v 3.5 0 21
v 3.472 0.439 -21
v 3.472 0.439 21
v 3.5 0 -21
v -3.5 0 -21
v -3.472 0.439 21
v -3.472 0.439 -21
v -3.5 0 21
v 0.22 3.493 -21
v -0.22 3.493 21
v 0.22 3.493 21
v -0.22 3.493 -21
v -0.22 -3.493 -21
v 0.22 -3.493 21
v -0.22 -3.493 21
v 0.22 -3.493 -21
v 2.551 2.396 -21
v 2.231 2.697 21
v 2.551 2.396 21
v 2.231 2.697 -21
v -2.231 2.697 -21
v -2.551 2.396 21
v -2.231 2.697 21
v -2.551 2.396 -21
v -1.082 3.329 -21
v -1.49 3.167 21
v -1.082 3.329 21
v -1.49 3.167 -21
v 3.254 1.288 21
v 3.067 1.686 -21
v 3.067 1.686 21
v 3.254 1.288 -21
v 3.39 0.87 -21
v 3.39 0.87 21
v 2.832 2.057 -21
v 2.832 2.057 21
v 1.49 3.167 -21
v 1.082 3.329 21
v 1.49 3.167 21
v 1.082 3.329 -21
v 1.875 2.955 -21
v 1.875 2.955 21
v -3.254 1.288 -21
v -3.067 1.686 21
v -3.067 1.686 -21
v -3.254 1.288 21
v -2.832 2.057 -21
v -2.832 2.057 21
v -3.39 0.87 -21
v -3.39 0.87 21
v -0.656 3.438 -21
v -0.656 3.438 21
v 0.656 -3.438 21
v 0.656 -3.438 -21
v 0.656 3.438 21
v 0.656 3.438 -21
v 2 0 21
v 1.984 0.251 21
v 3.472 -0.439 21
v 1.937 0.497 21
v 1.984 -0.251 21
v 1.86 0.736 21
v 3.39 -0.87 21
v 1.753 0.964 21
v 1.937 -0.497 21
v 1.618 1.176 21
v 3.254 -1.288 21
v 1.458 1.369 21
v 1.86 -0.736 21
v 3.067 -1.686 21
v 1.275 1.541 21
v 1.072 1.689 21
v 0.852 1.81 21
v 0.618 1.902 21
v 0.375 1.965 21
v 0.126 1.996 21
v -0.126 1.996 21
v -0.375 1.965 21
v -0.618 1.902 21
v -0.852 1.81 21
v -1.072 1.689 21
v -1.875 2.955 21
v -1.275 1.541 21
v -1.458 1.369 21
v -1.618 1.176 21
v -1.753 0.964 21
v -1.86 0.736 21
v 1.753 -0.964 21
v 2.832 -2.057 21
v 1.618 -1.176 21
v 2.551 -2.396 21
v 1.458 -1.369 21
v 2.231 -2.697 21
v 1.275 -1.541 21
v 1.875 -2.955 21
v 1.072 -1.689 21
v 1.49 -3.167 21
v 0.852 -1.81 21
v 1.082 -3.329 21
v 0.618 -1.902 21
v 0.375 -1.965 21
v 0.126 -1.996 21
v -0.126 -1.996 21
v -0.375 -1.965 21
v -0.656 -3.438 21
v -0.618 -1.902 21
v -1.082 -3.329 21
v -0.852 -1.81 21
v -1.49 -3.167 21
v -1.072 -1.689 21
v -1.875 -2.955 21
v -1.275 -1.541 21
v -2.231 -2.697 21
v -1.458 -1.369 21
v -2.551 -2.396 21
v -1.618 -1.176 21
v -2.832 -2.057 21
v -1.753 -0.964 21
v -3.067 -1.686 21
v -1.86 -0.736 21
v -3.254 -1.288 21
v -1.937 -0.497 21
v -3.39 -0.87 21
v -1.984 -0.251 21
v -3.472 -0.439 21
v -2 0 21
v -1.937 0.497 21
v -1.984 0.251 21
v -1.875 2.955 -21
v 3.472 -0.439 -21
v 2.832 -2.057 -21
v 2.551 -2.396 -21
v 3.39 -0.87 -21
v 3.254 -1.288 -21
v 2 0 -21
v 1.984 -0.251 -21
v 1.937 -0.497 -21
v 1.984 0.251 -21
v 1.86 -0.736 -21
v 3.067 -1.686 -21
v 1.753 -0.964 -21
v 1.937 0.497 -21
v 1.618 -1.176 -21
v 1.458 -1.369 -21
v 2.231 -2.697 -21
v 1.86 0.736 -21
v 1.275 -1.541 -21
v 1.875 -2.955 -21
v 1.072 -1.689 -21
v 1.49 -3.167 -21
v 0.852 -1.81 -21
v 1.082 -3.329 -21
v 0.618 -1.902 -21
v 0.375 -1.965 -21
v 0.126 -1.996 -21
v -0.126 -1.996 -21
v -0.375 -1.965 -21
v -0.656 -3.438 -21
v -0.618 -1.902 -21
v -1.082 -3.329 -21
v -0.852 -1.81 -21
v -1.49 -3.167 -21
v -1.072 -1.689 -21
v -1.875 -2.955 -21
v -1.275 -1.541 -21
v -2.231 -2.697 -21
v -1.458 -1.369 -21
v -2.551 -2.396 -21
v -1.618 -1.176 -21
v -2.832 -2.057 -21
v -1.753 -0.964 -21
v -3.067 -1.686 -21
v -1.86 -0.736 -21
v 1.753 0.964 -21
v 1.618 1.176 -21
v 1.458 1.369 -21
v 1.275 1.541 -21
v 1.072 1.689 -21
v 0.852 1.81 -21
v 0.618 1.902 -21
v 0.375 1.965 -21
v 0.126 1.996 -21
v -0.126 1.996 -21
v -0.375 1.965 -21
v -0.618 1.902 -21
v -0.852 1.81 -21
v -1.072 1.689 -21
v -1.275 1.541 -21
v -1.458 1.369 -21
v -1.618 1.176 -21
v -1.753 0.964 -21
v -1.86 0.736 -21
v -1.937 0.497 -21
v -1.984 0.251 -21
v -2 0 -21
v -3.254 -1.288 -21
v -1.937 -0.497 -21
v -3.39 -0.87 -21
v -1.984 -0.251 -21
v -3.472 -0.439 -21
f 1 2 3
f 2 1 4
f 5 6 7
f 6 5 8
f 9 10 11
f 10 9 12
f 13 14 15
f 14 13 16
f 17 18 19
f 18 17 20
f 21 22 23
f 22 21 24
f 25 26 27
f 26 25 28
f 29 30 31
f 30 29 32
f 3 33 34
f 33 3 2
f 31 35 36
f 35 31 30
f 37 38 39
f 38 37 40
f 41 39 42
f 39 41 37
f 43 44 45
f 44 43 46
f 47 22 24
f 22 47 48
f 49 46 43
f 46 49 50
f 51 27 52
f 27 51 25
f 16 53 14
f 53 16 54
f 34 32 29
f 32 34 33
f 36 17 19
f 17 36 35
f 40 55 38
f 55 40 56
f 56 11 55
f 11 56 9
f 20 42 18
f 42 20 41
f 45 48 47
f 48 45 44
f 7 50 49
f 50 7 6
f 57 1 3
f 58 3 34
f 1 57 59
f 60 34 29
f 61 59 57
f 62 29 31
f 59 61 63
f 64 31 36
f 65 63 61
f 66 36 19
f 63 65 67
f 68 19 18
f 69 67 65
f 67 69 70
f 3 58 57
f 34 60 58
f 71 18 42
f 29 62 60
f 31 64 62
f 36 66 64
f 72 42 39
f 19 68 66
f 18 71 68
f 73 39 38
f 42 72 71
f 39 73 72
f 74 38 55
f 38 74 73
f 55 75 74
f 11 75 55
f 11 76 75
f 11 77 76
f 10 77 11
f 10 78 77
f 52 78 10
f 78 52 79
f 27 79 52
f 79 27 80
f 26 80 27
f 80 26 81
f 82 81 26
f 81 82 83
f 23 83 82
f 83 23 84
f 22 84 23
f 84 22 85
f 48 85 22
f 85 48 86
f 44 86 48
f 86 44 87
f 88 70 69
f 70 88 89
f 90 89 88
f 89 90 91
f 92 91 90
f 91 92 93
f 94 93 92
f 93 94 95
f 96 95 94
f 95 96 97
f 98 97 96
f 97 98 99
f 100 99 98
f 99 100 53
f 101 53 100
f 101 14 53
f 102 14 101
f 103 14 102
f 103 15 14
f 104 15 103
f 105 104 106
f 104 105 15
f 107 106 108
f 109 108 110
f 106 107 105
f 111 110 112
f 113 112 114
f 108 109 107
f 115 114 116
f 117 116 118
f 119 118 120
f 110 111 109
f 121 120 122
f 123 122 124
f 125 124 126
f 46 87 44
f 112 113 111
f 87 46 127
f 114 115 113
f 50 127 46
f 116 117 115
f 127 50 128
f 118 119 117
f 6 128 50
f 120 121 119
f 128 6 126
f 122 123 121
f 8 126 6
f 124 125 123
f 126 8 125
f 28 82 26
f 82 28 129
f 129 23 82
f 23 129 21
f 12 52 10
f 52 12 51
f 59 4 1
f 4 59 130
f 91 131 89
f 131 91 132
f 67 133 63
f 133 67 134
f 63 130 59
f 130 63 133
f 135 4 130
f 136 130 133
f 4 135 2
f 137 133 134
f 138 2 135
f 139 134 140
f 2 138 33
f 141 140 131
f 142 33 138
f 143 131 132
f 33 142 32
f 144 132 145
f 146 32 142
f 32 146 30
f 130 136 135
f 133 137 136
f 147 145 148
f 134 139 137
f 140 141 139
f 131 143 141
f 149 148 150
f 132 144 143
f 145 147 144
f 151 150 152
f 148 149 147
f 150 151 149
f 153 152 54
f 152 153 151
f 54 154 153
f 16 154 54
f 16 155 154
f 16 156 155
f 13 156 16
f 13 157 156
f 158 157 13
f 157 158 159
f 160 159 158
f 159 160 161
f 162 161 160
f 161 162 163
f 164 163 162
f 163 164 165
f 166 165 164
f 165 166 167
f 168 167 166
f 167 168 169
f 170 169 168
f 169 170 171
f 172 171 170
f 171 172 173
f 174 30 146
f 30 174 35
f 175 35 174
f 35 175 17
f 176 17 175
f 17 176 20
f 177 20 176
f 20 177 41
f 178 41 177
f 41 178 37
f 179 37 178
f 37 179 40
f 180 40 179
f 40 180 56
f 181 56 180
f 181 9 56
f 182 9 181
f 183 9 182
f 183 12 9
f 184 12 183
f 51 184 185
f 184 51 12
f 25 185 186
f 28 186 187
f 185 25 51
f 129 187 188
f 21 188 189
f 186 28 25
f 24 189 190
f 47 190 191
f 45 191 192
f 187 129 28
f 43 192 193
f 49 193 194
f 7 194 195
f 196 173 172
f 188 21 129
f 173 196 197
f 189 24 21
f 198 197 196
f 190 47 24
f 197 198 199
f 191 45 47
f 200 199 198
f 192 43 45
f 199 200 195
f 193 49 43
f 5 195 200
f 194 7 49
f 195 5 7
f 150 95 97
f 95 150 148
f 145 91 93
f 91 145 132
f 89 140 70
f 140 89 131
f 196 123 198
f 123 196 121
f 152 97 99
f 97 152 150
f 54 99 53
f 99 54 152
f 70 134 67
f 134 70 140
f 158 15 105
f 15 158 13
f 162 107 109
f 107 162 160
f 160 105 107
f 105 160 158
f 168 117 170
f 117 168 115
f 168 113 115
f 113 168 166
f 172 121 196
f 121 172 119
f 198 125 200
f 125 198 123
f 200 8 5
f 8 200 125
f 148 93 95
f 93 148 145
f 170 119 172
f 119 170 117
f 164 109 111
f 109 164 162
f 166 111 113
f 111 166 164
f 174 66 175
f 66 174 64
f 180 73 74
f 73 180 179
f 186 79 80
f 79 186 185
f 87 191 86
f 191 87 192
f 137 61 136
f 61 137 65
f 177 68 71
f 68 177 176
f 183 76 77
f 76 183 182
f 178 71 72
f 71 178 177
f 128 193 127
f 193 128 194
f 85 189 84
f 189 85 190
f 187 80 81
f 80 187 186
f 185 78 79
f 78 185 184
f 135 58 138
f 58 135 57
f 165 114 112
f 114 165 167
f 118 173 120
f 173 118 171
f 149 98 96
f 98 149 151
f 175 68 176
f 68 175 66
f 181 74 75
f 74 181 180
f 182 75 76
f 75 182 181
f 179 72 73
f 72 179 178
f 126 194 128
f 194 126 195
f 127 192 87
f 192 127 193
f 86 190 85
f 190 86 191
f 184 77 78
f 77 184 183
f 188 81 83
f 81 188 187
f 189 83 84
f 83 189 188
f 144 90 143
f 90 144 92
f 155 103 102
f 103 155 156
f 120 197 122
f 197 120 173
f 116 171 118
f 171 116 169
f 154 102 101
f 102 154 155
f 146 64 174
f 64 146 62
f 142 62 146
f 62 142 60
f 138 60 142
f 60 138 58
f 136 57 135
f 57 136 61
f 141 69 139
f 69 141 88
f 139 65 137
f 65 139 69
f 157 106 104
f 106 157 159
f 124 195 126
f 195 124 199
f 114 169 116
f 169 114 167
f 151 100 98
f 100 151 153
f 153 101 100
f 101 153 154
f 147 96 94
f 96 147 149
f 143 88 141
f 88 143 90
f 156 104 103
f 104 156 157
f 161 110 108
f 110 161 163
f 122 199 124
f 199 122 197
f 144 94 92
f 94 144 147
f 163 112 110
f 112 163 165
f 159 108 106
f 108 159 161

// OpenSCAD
$fn = 50;


difference() {
	union() {
		translate(v = [0, 0, -21.0000000000]) {
			cylinder(h = 42, r = 3.5000000000);
		}
	}
	union() {
		translate(v = [0, 0, -100.0000000000]) {
			cylinder(h = 200, r = 2);
		}
	}
}
